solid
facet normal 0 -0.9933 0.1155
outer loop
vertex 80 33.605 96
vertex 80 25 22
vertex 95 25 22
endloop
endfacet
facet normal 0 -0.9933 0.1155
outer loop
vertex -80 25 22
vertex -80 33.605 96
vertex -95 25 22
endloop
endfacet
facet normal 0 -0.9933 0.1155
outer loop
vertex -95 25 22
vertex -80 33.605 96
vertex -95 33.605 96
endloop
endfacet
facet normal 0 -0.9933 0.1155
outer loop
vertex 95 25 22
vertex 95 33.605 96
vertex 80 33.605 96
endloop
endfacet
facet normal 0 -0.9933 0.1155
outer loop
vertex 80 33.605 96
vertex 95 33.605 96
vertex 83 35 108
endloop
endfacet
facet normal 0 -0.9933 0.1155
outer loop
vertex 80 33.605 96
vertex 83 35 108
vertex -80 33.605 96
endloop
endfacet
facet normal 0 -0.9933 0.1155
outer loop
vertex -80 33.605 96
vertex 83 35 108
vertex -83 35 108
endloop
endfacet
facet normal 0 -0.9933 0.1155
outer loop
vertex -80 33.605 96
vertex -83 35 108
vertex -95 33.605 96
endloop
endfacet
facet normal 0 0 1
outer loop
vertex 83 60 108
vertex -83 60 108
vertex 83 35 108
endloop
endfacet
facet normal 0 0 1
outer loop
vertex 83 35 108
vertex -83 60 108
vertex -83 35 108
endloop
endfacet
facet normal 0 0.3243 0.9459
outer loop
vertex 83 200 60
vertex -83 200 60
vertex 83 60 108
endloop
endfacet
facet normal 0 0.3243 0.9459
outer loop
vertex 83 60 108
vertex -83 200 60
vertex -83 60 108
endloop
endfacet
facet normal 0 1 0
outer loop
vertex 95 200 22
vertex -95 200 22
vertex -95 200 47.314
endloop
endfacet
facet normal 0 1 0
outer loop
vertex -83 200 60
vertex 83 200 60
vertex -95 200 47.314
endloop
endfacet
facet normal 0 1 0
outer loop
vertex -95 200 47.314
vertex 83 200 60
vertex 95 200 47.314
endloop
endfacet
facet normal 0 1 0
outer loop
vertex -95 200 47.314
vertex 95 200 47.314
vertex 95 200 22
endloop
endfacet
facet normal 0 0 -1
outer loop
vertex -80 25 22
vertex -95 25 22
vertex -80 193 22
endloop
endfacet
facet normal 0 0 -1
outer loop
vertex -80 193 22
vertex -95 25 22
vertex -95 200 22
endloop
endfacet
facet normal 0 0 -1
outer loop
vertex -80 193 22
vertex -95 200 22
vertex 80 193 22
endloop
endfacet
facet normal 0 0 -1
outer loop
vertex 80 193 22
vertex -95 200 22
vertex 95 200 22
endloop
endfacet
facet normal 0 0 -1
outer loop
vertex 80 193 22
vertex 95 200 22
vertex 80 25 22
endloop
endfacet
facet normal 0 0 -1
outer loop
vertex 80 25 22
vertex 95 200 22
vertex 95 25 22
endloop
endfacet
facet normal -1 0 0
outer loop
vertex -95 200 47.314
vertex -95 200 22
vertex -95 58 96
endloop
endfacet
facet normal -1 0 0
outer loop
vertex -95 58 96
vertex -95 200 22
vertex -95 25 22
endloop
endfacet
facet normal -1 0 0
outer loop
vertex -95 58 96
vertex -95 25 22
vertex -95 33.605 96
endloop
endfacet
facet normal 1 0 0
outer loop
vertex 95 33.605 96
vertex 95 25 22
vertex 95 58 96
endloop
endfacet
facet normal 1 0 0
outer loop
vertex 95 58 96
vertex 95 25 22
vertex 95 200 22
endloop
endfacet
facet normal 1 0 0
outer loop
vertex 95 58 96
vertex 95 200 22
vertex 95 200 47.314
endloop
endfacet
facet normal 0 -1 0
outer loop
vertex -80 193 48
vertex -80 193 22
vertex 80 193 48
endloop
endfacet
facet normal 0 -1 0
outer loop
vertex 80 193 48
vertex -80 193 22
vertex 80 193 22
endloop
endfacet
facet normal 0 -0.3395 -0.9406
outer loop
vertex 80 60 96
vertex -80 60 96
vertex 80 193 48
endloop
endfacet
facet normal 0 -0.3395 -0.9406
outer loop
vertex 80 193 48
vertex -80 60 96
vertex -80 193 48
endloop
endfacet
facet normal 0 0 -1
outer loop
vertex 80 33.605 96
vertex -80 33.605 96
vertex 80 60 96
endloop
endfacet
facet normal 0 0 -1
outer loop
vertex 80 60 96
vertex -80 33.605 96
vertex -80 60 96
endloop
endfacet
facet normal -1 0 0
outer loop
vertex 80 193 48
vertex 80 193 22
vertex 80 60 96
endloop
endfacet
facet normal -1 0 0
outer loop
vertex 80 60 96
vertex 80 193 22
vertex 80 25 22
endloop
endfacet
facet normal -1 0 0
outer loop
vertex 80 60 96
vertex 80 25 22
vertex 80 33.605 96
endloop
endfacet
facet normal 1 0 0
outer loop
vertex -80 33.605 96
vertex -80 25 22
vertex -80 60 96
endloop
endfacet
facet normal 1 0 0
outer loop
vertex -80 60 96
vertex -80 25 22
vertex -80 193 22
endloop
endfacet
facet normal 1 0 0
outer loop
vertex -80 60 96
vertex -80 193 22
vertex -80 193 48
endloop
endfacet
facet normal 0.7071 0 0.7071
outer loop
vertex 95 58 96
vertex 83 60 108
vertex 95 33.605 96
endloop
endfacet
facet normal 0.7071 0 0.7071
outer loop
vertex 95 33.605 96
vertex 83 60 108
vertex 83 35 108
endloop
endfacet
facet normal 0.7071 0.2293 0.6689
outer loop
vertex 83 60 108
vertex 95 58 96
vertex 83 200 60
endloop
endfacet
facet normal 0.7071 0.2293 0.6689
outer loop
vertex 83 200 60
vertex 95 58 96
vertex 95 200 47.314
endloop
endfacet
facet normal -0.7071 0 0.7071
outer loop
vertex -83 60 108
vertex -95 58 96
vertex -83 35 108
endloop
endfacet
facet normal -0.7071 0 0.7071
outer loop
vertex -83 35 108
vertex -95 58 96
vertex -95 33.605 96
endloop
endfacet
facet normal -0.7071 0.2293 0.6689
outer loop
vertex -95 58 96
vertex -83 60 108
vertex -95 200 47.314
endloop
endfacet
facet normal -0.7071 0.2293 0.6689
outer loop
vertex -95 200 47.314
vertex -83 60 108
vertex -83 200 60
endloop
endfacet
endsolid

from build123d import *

# Parameters (mm, degrees)
SLOPED_COVER_BLANK_DEPTH                        = 95
SLOPED_COVER_BLANK_DEPTH_BACK                   = 95
OPEN_BOTTOM_AND_FRONT_COVER_CAVITY_DEPTH        = 80
OPEN_BOTTOM_AND_FRONT_COVER_CAVITY_DEPTH_BACK   = 80
F_12_MM_FULL_LENGTH_SHAPE_DEFINING_ROOF_CH_SIZE = 12


with BuildPart() as part:
    # Sloped Cover Outer Side Profile → Sloped Cover Blank (new, two sides: drawn at the far end of the back side and taken through both)
    with BuildSketch(Plane(origin=(0, 0, 0), x_dir=(0, 0, -1), z_dir=(1, 0, 0)).offset(-SLOPED_COVER_BLANK_DEPTH_BACK)):
        Polygon((-22, 25), (-22, 200), (-60, 200), (-108, 60), (-108, 35), align=None)
    extrude(amount=SLOPED_COVER_BLANK_DEPTH + SLOPED_COVER_BLANK_DEPTH_BACK)

    # Open Bottom Cover Cavity Profile → Open Bottom and Front Cover Cavity (cut, two sides: drawn at the far end of the back side and taken through both)
    with BuildSketch(Plane(origin=(0, 0, 0), x_dir=(0, 0, -1), z_dir=(1, 0, 0)).offset(-OPEN_BOTTOM_AND_FRONT_COVER_CAVITY_DEPTH_BACK)):
        Polygon((-18, 23), (-18, 193), (-48, 193), (-96, 60), (-96, 33.604651163), align=None)
    extrude(amount=OPEN_BOTTOM_AND_FRONT_COVER_CAVITY_DEPTH + OPEN_BOTTOM_AND_FRONT_COVER_CAVITY_DEPTH_BACK, mode=Mode.SUBTRACT)

    # 12 mm Full-Length Shape-Defining Roof Chamfers
    f_12_mm_full_length_shape_defining_roof_ch_edges = [part.edges().sort_by_distance(p)[0] for p in [
        (95, 130, 84),
        (95, 47.5, 108),
        (-95, 130, 84),
        (-95, 47.5, 108),
    ]]
    chamfer(f_12_mm_full_length_shape_defining_roof_ch_edges, length=F_12_MM_FULL_LENGTH_SHAPE_DEFINING_ROOF_CH_SIZE)


solid = part.part
